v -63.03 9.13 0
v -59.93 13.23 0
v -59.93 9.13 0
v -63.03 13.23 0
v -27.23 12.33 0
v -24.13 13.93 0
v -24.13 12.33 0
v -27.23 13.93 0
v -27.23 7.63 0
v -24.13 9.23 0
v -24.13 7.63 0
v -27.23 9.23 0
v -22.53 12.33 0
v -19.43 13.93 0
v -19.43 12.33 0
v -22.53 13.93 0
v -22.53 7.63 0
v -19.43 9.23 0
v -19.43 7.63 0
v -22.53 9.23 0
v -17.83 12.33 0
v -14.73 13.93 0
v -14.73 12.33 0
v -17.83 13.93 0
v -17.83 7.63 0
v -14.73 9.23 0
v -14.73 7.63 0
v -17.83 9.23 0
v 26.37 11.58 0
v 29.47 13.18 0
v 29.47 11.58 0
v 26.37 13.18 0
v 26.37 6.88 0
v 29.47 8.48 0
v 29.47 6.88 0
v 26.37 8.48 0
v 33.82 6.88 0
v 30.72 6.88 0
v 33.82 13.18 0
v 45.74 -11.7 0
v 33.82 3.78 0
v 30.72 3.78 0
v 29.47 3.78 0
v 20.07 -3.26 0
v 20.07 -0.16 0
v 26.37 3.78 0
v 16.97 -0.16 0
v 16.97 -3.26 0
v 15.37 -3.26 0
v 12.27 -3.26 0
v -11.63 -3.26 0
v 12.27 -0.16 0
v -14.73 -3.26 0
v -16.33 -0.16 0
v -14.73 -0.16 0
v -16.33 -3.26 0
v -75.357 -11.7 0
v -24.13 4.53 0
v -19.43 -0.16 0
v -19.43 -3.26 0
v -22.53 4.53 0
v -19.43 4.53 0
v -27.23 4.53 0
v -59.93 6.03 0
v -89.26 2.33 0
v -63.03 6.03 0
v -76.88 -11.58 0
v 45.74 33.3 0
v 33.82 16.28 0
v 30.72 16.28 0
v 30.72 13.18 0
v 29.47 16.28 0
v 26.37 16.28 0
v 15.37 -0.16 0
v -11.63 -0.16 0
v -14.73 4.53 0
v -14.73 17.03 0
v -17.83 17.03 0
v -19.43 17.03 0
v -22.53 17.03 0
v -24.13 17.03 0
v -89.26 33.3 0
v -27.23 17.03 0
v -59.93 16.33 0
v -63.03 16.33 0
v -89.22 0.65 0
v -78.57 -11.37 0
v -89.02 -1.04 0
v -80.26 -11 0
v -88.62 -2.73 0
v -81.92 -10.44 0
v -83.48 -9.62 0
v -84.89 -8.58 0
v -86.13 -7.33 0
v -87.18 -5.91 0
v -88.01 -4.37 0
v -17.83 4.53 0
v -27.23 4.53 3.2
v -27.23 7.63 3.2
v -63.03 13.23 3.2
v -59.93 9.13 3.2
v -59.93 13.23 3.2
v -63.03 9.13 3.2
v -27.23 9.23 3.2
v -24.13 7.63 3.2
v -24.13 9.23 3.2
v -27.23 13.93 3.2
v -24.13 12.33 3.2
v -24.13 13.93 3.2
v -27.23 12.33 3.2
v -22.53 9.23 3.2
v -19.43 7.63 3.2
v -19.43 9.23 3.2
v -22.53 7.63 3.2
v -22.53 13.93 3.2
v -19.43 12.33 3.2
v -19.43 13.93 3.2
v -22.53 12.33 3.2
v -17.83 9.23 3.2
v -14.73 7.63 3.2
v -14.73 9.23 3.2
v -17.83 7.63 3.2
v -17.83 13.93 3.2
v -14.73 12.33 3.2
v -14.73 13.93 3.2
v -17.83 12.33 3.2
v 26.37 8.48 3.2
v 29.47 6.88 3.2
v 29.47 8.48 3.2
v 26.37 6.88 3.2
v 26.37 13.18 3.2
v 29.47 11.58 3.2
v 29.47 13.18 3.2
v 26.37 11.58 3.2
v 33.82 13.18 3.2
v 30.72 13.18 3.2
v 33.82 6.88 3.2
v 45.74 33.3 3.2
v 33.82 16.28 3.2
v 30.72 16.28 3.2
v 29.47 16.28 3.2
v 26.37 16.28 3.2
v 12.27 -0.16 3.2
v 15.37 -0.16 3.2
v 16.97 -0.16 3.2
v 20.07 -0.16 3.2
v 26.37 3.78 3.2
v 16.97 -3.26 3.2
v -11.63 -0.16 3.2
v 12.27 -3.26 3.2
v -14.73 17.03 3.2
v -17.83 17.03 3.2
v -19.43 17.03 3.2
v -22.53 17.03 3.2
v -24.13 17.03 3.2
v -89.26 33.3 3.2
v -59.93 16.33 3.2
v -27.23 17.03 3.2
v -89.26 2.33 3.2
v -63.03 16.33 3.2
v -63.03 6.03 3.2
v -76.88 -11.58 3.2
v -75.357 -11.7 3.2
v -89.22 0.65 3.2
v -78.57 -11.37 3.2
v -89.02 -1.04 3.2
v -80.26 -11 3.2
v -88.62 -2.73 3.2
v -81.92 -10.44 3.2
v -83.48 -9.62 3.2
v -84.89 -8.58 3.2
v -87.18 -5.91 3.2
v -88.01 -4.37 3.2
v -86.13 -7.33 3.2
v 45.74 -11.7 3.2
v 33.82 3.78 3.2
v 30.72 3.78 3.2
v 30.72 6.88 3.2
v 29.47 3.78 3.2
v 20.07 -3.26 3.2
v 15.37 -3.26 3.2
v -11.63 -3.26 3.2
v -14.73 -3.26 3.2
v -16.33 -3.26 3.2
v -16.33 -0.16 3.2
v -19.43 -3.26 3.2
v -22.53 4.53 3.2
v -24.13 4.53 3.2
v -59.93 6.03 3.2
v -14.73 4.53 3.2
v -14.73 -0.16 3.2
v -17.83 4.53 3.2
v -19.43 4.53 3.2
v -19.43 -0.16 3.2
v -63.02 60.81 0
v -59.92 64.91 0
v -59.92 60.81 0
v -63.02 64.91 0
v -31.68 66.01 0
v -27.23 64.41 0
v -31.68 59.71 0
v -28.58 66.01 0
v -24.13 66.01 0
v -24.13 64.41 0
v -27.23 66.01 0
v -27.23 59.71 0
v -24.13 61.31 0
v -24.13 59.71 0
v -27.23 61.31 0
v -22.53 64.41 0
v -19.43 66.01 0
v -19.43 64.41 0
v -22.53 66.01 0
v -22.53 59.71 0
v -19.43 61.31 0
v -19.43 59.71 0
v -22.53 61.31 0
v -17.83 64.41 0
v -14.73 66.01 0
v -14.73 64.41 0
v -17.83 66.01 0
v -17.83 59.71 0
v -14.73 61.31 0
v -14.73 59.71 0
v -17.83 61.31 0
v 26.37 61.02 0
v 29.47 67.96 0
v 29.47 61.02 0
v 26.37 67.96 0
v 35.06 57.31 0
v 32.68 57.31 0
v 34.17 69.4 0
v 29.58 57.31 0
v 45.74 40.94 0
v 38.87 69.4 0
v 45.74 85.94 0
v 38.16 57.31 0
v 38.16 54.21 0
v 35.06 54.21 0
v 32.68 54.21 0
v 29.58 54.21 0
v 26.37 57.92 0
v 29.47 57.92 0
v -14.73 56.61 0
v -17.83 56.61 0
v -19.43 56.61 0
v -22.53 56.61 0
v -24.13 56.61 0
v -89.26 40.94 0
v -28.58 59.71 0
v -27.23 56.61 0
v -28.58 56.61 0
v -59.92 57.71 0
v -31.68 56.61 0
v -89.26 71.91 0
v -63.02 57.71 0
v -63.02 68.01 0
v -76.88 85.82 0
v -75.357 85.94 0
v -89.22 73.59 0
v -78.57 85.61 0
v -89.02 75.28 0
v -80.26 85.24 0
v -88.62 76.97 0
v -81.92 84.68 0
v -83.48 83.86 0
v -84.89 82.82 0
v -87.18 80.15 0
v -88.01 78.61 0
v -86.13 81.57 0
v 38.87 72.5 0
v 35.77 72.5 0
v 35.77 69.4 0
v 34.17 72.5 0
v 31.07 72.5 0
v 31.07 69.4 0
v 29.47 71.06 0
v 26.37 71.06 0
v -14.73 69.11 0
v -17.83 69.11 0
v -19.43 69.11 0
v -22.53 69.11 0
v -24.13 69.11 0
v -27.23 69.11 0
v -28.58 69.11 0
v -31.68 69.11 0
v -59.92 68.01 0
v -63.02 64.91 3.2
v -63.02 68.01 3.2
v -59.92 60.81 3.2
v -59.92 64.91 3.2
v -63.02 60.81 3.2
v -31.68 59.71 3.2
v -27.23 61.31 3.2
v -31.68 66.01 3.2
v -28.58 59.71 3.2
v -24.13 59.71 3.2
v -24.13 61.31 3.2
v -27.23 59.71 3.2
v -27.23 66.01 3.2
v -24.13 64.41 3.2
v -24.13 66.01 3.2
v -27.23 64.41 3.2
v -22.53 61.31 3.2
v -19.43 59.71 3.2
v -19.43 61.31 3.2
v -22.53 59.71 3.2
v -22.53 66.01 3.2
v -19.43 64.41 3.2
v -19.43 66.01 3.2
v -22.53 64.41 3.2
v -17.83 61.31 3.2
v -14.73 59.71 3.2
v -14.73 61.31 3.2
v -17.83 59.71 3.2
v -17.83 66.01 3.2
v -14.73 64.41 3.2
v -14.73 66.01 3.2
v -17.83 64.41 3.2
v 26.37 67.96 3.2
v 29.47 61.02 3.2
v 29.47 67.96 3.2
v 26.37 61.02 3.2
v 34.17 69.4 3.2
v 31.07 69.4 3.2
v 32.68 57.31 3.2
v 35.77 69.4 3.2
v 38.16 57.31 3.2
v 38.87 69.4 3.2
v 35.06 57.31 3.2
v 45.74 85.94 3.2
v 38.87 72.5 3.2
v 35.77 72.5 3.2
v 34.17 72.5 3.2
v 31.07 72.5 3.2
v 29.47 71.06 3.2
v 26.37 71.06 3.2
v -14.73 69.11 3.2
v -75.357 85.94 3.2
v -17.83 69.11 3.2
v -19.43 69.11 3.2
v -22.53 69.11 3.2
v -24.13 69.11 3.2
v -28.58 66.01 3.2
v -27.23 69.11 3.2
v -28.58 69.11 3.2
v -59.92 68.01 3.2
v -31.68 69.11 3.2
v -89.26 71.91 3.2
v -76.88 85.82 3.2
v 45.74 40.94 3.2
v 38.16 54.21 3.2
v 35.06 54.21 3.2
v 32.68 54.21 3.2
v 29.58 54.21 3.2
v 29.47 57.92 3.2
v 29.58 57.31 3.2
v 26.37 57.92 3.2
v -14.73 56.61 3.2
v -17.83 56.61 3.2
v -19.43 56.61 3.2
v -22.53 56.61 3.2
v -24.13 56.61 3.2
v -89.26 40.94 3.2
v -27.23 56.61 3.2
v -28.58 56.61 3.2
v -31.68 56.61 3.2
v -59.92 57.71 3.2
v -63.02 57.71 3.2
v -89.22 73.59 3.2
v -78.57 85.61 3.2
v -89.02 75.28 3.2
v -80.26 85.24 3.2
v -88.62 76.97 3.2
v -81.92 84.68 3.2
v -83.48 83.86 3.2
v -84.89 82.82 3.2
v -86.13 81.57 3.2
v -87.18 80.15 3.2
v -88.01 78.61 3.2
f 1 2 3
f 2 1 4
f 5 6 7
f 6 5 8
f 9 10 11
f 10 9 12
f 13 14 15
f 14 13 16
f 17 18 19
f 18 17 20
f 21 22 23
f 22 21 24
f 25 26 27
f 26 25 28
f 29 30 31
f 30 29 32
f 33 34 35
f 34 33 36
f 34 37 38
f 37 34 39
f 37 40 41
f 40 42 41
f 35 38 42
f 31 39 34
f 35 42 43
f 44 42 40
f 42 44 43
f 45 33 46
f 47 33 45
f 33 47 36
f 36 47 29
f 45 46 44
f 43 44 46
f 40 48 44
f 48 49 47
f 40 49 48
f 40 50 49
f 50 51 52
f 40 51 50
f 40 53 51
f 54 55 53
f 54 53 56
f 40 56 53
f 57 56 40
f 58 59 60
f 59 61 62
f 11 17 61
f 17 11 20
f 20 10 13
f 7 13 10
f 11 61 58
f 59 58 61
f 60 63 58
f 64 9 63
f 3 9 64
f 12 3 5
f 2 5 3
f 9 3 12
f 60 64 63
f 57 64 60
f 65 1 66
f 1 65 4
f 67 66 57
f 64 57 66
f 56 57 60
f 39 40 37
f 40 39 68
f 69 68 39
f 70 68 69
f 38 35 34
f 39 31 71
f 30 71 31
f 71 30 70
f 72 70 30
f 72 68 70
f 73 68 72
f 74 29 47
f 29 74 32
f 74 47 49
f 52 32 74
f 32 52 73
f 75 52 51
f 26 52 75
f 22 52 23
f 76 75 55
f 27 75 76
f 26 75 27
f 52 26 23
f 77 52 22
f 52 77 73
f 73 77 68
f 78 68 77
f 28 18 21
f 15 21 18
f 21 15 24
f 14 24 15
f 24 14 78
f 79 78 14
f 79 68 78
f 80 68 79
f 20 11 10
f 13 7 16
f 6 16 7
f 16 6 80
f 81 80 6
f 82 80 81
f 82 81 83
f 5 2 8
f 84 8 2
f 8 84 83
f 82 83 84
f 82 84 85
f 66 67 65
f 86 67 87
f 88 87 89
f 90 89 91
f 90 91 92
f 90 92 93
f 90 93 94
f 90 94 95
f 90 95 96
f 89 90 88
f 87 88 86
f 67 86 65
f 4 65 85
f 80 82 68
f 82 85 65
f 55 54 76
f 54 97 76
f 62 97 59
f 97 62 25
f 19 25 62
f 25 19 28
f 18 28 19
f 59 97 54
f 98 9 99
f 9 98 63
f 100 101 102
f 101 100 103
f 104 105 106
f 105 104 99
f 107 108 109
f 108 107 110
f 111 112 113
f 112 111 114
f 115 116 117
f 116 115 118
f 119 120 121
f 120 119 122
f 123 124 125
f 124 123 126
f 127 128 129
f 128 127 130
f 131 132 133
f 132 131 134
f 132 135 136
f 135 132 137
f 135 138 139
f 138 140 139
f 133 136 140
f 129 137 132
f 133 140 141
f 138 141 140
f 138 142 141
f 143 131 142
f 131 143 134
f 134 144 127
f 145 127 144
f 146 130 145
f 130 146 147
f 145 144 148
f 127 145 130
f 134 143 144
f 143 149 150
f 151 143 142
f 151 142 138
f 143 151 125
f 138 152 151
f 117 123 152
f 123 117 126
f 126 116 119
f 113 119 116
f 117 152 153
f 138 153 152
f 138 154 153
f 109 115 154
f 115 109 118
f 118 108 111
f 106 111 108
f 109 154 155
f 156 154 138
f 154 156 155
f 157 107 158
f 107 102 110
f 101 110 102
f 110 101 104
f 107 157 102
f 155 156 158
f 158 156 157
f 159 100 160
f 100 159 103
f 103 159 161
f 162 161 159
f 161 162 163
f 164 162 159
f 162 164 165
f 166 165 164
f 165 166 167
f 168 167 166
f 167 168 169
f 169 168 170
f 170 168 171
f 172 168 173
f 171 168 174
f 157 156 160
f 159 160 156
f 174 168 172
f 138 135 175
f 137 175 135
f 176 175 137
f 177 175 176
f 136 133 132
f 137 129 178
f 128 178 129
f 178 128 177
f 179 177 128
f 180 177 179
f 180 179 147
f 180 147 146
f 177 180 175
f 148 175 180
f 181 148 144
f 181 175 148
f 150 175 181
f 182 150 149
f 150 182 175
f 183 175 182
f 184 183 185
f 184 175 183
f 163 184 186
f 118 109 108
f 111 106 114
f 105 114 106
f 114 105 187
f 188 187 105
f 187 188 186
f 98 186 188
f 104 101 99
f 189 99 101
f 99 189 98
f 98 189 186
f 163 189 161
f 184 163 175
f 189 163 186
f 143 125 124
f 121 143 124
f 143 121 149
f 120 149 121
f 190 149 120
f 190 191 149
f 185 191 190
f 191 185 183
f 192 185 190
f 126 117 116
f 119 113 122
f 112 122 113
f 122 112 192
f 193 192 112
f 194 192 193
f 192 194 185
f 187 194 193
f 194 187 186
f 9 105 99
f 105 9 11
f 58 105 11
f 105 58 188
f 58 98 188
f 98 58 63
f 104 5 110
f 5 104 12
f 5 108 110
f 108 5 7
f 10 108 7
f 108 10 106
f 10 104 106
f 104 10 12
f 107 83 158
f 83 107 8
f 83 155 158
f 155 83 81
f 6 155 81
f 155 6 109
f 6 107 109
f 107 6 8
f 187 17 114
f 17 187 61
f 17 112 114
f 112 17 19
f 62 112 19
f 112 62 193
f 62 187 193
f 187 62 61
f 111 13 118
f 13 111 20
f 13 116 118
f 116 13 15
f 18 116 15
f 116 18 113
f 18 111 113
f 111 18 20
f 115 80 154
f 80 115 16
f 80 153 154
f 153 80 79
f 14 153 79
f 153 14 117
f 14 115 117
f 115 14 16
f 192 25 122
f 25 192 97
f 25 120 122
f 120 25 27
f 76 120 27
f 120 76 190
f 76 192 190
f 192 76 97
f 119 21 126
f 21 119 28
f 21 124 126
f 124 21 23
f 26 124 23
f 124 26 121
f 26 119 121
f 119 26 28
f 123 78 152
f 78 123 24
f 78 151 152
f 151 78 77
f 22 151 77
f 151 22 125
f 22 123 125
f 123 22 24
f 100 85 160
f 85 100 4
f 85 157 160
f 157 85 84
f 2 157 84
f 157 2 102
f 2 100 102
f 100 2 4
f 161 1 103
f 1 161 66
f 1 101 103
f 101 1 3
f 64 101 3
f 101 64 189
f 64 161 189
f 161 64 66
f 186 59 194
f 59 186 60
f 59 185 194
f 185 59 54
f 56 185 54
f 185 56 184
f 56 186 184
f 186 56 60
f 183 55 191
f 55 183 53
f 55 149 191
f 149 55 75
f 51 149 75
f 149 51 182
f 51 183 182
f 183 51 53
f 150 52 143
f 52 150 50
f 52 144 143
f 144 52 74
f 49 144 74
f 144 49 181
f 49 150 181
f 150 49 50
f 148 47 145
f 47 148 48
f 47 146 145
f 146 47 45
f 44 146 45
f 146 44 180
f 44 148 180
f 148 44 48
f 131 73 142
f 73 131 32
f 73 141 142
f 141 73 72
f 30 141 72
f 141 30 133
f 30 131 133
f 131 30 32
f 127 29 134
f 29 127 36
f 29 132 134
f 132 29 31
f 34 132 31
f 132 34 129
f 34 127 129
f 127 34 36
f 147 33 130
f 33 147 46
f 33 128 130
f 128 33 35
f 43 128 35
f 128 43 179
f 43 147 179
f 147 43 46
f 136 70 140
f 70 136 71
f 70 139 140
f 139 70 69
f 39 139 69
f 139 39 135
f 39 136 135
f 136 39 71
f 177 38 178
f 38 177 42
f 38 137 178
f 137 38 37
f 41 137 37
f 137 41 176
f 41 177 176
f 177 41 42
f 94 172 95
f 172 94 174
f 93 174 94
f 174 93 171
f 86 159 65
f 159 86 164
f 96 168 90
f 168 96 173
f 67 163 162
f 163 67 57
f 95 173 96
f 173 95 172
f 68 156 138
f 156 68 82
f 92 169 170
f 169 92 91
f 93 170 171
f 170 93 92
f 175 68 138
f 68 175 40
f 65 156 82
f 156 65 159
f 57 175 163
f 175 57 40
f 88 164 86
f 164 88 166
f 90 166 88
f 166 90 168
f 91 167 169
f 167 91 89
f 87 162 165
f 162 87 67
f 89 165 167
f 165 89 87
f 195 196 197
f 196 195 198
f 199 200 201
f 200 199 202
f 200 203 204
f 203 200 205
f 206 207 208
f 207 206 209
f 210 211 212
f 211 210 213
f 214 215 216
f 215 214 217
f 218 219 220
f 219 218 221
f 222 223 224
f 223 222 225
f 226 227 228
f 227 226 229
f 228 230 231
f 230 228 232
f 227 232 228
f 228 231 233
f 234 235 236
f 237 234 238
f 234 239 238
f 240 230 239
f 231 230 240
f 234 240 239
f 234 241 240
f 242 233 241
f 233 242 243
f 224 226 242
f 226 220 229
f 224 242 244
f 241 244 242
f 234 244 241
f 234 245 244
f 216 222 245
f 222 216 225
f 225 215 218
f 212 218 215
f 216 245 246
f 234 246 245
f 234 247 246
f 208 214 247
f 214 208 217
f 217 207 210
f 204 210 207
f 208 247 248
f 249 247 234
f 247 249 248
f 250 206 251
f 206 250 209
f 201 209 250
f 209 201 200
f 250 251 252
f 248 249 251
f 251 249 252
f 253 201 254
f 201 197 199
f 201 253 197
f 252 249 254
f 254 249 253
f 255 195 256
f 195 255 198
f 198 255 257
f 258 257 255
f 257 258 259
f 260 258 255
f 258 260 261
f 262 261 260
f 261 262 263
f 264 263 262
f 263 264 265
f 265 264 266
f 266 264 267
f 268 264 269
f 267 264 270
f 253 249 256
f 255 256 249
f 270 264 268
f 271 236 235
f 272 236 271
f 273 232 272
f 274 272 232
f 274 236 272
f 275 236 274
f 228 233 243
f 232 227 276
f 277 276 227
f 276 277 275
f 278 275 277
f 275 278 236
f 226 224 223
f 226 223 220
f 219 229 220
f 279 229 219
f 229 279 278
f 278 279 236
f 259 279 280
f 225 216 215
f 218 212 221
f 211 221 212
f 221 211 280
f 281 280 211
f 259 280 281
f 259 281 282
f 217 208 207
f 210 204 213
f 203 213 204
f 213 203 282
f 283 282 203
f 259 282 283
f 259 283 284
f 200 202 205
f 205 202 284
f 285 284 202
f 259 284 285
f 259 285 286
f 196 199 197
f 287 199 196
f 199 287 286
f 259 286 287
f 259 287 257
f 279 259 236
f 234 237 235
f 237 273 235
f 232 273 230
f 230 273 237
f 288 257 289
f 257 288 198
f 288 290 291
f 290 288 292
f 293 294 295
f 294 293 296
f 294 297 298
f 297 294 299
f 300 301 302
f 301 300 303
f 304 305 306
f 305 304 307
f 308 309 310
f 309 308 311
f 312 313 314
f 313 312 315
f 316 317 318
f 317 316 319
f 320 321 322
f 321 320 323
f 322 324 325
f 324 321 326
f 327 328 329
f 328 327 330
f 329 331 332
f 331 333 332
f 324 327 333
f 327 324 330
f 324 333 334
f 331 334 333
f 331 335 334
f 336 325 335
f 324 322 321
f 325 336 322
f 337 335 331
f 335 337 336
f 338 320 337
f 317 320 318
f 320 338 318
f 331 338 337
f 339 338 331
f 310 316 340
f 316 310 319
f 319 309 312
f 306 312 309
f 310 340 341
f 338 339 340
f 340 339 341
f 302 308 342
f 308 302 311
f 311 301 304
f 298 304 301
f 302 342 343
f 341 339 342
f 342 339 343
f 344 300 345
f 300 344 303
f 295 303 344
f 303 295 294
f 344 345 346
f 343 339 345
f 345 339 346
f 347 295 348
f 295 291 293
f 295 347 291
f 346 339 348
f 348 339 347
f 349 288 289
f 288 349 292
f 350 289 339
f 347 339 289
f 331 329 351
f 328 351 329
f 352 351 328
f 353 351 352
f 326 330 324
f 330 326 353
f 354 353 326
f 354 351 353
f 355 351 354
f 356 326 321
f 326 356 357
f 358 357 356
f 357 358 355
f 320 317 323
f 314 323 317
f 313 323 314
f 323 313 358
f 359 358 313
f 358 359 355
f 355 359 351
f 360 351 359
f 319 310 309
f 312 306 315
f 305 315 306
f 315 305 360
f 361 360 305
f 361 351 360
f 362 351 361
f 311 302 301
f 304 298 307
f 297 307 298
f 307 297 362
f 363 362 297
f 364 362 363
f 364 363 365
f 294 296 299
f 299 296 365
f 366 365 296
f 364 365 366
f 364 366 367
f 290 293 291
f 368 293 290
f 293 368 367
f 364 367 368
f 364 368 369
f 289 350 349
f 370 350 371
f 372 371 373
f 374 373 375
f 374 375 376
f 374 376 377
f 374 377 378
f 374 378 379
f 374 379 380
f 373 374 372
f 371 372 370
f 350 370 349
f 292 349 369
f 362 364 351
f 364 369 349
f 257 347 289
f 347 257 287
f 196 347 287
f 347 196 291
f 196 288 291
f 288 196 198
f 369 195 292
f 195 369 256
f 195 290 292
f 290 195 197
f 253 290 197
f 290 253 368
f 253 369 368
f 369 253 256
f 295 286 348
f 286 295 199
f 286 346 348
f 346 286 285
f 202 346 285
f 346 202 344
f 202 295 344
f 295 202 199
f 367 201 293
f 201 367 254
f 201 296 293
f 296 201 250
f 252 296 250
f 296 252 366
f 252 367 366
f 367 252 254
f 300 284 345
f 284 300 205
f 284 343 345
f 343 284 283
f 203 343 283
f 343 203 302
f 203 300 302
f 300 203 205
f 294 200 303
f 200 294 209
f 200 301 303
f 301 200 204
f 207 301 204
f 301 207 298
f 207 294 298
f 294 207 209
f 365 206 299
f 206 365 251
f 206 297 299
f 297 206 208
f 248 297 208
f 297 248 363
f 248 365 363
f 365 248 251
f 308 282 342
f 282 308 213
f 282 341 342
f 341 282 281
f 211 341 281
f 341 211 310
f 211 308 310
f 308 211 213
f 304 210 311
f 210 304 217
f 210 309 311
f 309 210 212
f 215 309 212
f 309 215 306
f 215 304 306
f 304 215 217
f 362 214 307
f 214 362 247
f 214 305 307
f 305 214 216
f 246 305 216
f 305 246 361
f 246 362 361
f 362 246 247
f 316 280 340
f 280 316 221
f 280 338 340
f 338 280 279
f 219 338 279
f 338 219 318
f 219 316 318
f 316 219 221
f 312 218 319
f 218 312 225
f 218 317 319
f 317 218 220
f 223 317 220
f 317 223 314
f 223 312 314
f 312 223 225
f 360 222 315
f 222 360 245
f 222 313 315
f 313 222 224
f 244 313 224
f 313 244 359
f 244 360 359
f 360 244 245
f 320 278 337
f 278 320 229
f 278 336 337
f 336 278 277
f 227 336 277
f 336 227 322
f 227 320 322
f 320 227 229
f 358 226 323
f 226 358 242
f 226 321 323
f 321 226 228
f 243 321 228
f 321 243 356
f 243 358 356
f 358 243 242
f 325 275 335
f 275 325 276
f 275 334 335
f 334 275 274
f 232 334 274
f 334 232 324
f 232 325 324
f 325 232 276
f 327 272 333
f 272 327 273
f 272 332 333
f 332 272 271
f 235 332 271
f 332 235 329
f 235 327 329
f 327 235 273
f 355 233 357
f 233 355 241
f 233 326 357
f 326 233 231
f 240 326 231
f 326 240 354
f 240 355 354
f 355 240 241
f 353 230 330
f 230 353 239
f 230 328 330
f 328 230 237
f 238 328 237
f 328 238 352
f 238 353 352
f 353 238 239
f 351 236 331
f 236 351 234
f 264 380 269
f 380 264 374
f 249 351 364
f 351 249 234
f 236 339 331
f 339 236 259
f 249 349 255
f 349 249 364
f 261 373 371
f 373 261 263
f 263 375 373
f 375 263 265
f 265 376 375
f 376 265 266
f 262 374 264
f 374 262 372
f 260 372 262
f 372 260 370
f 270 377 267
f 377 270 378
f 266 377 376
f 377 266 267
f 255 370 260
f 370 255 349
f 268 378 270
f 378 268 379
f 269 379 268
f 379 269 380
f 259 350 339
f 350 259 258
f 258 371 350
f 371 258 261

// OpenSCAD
th = 3.2;

module corner() {
    translate([-18.79, -18.79]) polygon([
        [18.79, 0.0], [18.79, 1.56], [18.79, 3.13], [18.79, 4.76], 
        [18.75, 6.44], [18.55, 8.13], [18.15, 9.82], [17.54, 11.46], 
        [16.71, 13.0], [15.66, 14.42], [14.42, 15.67], [13.01, 16.71], 
        [11.45, 17.53], [9.79, 18.09], [8.1, 18.46], [6.41, 18.67], 
        [4.76, 18.8], [3.15, 18.86], [1.56, 18.86], [0.0, 18.79],
        [18.79, 18.79]
    ]);
}

module mag() {
    linear_extrude(3.2) square(3.1, center=true);
}

// ipad dimension: 178.52 x 247.64 mm
// smart connector center plate to the closest edge distance: 10 + 3.4/2 = 11.7mm

module lower_part_centered_plate_2d() {
    translate([-178.52/2,-11.7]) difference() {
        square([135, 45]);
        rotate(180) corner();
    }
}

module lower_part_magnets() {
    for (tx=[-25.68, -20.98, -16.28], ty=[6.08, 10.78, 15.48])
        translate([tx,ty]) mag(); // center 3x3
    for(ty=[14.78, 7.58])
        translate([-61.48,ty]) mag(); // left 1x2
    for(tx=[-17.88, -13.18, 13.82, 18.52])
        translate([tx,-1.71]) mag(); // bottom 4x1
    for(ty=[14.73, 10.03, 5.33])
        translate([27.92,ty]) mag(); // right1 1x3
    for(ty=[14.73, 5.33])
        translate([32.27,ty]) mag(); // right2 1x2
    for(ty=[14.73, 5.33])
        translate([57.62,ty]) mag(); // right3 1x2
    for(ty=[14.73, 10.03, 5.33])
        translate([62.02,ty]) mag(); // right4 1x3    
}

module lower_part(){
    difference() {
        linear_extrude(th) lower_part_centered_plate_2d();
        lower_part_magnets();
    }
}

//lower_part();

module upper_part_centered_plate_2d() {
    w = 45;// plate width
    translate([-178.52/2,247.64-11.7-w]) difference() {
        square([135, w]);
        translate([0,w]) mirror([0,1]) rotate(180) corner();
    }
}

module upper_part_magnets() {
    for(ty=[216.46, 209.26])
        translate([-61.47,ty]) mag(); // left1 1x2
    
    for(ty=[217.56, 208.16])
        translate([-30.13,ty]) mag(); // center1 1x2
    for(tx=[-25.68, -20.98, -16.28], ty=[217.56, 212.86, 208.16])
        translate([tx,ty]) mag(); //  center2 3x3
    
    for(ty=[219.51, 209.47])
        translate([27.92,ty]) mag(); // right1 1x2
    for(tx=[32.62, 37.32, 
        //42.02, 46.72, 51.77
    ])
        translate([tx, 220.95]) mag(); // right2 upper 5x1
    for(tx=[31.13, 36.61, 
        //42.08, 47.56, 52.74
    ])
        translate([tx, 205.76]) mag(); // right2 lower 5x1
}

module upper_part() {
    difference() {
        linear_extrude(th) upper_part_centered_plate_2d();
        upper_part_magnets();
    }
}  

lower_part();
translate([0,-150,0]) upper_part();
